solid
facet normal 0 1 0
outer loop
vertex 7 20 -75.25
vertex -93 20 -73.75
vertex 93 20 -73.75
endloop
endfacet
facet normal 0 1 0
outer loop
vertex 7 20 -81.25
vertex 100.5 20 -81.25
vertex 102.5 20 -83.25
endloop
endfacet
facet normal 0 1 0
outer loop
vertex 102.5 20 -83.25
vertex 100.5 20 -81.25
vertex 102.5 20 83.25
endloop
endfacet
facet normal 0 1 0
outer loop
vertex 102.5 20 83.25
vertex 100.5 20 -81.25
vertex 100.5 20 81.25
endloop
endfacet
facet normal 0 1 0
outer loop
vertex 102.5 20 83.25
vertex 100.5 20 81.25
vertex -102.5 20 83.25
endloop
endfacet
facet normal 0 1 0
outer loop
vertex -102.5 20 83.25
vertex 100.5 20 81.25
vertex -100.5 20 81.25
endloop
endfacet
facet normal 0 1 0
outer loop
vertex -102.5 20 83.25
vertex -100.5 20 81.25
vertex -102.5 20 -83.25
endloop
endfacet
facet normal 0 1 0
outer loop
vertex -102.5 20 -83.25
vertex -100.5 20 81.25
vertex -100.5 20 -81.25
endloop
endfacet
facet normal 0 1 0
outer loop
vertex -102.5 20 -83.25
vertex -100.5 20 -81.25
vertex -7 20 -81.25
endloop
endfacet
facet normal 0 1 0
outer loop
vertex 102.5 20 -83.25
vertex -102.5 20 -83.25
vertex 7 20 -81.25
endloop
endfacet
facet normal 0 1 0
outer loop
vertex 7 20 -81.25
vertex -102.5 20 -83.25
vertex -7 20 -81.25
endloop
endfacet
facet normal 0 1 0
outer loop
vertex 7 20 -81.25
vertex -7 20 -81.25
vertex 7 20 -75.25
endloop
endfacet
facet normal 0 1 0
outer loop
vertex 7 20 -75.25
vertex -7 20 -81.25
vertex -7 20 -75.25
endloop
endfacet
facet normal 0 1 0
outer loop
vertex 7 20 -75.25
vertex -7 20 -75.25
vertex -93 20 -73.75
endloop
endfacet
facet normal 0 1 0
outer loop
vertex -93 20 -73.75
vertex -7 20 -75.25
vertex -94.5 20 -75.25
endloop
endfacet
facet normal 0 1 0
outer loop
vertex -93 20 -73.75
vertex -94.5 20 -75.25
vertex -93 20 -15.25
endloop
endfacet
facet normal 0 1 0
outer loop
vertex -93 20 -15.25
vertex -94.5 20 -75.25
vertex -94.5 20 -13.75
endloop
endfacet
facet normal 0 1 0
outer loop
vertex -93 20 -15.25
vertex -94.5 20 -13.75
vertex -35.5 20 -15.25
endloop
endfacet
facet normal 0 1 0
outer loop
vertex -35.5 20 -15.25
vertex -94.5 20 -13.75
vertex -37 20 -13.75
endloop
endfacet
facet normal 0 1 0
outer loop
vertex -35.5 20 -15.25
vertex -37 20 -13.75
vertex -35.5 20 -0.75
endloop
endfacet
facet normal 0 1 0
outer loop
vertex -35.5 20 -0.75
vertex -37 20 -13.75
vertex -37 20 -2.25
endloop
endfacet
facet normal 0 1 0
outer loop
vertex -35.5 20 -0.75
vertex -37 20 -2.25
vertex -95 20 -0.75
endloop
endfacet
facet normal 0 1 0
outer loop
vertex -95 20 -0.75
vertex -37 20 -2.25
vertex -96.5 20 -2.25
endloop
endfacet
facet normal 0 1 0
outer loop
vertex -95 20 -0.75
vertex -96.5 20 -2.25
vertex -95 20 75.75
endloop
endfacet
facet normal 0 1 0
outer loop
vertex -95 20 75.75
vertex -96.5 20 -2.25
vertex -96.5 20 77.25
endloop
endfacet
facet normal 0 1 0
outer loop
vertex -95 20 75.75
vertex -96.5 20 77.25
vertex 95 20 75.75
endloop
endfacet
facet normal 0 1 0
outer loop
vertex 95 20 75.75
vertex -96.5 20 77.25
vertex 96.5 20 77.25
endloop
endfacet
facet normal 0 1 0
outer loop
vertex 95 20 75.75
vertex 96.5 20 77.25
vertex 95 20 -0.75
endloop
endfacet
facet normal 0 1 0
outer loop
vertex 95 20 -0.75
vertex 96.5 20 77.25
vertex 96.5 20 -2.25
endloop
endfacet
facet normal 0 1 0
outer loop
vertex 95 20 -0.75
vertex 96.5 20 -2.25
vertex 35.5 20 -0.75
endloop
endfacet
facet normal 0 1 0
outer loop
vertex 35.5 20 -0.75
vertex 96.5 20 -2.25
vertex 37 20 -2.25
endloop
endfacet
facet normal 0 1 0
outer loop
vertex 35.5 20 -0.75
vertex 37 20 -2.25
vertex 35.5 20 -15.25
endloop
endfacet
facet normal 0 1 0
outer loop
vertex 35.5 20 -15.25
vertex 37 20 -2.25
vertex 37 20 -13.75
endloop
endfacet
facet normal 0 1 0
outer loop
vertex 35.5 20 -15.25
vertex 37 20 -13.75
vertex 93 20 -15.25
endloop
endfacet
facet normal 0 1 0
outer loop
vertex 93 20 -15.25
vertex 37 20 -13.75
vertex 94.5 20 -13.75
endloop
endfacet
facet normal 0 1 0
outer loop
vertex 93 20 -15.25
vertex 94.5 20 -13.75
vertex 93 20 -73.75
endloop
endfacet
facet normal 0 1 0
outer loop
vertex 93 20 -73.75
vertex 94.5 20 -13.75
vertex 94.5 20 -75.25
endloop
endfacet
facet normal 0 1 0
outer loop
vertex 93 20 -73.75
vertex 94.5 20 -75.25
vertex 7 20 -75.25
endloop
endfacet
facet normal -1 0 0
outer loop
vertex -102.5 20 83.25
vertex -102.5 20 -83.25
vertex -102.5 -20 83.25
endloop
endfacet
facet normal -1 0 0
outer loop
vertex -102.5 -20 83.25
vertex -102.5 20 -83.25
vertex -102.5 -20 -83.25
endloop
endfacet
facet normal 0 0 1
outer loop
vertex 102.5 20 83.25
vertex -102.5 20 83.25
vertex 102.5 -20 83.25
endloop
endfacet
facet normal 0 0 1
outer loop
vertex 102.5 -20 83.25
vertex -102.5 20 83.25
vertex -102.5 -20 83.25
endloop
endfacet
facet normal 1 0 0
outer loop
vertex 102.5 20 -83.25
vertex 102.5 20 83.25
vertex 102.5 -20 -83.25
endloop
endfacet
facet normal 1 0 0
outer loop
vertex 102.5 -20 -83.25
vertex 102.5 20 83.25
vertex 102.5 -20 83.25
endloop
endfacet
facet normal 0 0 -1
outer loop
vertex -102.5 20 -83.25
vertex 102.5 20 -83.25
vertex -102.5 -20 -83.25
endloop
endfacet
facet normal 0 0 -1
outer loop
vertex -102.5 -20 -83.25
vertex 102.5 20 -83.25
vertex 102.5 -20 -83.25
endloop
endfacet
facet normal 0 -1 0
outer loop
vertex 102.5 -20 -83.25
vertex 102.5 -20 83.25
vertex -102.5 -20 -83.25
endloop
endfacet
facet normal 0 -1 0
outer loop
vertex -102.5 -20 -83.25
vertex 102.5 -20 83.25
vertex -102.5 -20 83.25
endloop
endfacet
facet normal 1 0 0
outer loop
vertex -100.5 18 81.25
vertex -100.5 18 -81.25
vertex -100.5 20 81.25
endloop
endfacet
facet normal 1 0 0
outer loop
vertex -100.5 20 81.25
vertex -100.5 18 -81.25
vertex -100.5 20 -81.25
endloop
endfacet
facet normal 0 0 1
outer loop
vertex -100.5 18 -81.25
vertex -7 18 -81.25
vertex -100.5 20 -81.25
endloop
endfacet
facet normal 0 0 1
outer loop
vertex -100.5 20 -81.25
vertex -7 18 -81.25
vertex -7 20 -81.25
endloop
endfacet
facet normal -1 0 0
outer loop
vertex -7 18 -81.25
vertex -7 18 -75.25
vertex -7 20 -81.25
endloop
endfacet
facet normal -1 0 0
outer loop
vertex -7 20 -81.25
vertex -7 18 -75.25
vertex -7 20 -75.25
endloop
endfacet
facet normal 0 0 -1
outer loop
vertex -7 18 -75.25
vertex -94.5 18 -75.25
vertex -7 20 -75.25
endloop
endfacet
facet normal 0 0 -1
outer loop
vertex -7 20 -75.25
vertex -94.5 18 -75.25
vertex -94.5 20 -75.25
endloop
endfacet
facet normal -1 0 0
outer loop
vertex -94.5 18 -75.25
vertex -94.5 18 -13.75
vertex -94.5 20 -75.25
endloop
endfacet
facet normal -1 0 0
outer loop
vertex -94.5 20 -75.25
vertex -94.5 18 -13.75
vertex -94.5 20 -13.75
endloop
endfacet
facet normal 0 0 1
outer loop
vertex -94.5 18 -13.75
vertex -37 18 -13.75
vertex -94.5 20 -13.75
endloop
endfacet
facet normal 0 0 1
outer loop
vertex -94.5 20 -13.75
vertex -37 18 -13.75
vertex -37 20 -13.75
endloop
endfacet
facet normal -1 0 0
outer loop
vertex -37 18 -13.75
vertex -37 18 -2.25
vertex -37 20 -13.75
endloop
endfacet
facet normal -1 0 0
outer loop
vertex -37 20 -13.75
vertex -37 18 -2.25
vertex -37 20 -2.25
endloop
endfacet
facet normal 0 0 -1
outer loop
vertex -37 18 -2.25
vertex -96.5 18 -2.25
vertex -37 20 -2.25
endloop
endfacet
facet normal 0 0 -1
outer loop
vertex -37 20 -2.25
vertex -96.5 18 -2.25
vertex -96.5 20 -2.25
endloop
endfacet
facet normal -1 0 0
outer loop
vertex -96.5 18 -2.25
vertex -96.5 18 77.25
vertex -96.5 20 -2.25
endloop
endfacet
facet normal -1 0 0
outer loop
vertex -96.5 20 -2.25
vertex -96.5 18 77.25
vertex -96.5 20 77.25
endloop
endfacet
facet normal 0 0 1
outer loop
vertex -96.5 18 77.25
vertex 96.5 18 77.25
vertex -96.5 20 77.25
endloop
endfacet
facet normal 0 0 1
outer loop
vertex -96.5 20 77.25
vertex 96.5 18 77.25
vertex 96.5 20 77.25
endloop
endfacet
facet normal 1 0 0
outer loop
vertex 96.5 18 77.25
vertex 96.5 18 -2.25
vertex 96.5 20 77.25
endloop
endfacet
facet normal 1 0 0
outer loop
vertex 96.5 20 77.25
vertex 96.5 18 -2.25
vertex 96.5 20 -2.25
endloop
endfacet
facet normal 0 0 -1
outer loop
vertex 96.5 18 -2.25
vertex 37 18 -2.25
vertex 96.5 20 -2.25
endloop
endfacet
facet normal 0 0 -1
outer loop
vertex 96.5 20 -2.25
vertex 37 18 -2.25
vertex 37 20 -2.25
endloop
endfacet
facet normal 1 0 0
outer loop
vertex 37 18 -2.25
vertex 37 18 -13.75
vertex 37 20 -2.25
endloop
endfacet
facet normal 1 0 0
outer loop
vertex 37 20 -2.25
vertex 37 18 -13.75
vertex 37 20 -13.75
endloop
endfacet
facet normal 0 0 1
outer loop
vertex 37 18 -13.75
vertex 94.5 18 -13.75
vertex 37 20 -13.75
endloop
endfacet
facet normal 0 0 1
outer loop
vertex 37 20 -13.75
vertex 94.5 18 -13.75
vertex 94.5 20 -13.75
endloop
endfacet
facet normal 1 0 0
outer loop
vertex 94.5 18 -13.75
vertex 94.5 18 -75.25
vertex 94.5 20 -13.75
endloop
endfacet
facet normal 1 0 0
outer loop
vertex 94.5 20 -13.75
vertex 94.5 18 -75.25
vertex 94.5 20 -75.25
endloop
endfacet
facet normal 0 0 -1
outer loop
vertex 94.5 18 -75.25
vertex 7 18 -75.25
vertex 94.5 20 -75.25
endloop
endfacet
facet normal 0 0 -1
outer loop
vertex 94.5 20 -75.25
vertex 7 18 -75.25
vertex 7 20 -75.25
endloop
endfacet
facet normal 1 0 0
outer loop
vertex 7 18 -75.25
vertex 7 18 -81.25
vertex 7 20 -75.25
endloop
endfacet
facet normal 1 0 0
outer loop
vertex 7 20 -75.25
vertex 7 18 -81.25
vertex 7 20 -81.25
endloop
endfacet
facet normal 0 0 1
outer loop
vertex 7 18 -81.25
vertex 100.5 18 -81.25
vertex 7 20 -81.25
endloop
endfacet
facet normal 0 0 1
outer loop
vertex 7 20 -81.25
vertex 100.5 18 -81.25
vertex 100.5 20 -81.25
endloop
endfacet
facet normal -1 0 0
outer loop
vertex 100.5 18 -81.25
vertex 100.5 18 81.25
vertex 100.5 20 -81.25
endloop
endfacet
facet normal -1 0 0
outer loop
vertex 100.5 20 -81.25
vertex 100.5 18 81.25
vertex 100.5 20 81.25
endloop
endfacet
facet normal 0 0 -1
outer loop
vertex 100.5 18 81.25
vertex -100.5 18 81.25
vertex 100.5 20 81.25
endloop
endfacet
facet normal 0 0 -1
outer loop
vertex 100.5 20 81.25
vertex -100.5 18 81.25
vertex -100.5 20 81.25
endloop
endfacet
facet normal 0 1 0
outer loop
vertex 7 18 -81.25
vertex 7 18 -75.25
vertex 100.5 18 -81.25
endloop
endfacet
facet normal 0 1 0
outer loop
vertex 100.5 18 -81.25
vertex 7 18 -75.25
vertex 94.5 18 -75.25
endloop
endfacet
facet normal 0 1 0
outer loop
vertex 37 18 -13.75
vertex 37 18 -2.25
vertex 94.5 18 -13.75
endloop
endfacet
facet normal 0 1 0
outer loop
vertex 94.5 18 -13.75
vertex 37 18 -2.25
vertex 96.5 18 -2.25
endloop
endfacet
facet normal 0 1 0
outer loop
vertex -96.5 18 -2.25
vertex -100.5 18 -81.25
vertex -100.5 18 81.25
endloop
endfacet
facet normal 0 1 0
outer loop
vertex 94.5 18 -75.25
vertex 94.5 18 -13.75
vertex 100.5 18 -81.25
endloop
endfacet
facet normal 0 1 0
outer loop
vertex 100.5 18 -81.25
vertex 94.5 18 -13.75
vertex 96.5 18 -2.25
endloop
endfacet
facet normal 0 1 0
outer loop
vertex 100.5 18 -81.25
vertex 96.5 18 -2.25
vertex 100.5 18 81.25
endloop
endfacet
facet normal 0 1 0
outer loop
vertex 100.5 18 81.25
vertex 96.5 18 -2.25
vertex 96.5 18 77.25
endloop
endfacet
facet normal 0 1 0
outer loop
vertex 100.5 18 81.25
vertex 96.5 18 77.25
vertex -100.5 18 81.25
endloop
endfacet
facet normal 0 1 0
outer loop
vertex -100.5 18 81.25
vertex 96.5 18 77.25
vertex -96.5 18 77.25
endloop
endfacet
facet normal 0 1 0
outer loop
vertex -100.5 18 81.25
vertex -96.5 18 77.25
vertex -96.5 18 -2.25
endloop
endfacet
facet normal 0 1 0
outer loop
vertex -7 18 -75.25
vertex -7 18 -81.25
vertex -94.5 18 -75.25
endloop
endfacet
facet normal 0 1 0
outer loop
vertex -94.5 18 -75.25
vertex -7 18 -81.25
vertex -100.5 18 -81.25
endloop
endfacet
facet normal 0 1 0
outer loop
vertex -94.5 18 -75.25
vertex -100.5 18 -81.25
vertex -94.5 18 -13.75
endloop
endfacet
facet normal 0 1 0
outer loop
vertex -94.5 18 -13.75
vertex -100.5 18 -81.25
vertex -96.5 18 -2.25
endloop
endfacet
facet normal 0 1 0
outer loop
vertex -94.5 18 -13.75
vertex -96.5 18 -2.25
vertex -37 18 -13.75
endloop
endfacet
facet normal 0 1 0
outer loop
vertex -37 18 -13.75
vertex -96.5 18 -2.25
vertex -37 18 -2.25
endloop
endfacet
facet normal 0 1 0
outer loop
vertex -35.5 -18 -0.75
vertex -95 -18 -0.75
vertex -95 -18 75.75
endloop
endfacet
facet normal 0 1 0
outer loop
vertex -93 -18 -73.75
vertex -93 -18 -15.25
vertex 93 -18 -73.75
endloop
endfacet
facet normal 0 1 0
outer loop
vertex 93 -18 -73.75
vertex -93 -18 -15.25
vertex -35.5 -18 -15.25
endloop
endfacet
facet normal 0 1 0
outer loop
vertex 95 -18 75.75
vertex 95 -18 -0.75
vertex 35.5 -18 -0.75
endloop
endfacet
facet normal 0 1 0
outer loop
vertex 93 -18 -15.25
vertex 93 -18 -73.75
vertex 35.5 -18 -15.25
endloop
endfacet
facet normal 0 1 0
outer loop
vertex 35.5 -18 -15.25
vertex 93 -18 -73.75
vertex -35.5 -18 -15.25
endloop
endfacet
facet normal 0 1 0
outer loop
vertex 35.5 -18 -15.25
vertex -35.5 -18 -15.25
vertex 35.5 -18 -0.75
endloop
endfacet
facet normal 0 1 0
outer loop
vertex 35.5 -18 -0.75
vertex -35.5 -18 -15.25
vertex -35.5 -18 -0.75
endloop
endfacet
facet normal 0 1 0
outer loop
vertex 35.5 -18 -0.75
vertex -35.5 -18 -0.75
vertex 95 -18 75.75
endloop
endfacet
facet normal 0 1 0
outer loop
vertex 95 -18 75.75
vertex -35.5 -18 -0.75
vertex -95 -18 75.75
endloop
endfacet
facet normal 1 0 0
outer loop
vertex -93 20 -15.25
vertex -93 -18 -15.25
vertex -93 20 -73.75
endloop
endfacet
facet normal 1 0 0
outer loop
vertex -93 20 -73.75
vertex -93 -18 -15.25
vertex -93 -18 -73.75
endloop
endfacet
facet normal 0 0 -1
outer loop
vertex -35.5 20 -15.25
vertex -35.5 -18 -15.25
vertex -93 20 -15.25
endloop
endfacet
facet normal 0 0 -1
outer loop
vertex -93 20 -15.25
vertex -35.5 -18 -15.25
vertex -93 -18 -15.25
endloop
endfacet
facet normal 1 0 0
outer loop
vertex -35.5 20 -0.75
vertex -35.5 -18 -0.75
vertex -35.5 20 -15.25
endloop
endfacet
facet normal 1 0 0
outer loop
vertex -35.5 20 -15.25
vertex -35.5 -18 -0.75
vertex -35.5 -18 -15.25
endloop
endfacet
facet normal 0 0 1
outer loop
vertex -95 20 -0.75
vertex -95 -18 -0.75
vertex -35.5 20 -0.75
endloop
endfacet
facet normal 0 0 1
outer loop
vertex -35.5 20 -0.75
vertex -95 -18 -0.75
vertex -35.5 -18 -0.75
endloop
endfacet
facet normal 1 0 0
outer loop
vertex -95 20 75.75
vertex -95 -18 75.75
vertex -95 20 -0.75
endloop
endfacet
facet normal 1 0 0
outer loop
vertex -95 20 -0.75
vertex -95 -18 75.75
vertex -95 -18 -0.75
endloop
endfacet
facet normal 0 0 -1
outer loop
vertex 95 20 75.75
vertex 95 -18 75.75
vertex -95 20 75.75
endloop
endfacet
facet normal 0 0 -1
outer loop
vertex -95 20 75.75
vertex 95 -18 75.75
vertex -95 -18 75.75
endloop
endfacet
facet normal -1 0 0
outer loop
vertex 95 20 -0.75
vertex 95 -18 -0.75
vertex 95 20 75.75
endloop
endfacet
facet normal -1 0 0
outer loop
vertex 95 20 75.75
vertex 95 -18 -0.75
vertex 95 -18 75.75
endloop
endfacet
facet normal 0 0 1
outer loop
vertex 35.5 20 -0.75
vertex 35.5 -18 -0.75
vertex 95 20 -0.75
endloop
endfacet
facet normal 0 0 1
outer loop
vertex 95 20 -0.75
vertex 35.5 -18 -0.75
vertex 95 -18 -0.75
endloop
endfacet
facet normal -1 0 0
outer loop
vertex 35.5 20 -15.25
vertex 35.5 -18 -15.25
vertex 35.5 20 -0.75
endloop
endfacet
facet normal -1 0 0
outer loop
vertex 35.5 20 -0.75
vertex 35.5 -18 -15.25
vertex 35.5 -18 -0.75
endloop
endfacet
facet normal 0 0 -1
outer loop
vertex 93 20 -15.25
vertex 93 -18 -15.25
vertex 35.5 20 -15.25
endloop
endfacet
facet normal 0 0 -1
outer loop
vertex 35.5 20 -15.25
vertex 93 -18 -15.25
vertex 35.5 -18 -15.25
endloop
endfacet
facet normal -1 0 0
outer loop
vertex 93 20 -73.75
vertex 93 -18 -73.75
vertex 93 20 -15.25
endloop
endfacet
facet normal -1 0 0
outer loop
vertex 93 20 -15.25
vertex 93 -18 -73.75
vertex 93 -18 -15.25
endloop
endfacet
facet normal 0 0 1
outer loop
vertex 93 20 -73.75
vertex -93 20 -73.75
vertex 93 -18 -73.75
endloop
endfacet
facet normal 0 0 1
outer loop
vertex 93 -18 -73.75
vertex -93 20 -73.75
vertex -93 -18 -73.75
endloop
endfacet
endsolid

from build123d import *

# Parameters (mm, degrees)
SKETCH1_W           = 205
SKETCH1_H           = 166.5
BOSS_EXTRUDE1_DEPTH = 20
CUT_EXTRUDE1_DEPTH  = 2
CUT_EXTRUDE3_DEPTH  = 38


with BuildPart() as part:
    # Sketch1 → Boss-Extrude1 (new, symmetric)
    with BuildSketch(Plane(origin=(0, 0, 0), x_dir=(1, 0, 0), z_dir=(0, 1, 0))):
        Rectangle(SKETCH1_W, SKETCH1_H)
    extrude(amount=BOSS_EXTRUDE1_DEPTH, both=True)

    # Sketch3 → Cut-Extrude1 (cut)
    # profile 1 of 4: a face of its own
    with BuildSketch(Plane(origin=(0, 20, 0), x_dir=(1, 0, 0), z_dir=(0, 1, 0))):
        Polygon((-100.5, -81.25), (-100.5, 5.75), (-100.5, 81.25), (-7, 81.25), (-7, 75.25), (-94.5, 75.25), (-94.5, 13.75), (-37, 13.75), (-37, 5.75), (-37, 2.25), (-96.5, 2.25), (-96.5, -77.25), (96.5, -77.25), (96.5, 2.25), (37, 2.25), (37, 5.75), (37, 13.75), (94.5, 13.75), (94.5, 75.25), (7, 75.25), (7, 81.25), (100.5, 81.25), (100.5, 5.75), (100.5, -81.25), align=None)
        Polygon((7.5, 80.75), (100, 80.75), (100, 5.75), (100, -80.75), (-100, -80.75), (-100, 5.75), (-100, 80.75), (-7.5, 80.75), (-7.5, 75.75), (-95, 75.75), (-95, 13.25), (-37.5, 13.25), (-37.5, 5.75), (-37.5, 2.75), (-97, 2.75), (-97, -77.75), (97, -77.75), (97, 2.75), (37.5, 2.75), (37.5, 5.75), (37.5, 13.25), (95, 13.25), (95, 75.75), (7.5, 75.75), align=None, mode=Mode.SUBTRACT)
    # profile 2 of 4: a face of its own
    with BuildSketch(Plane(origin=(0, 20, 0), x_dir=(1, 0, 0), z_dir=(0, 1, 0))):
        Polygon((-100, -80.75), (-100, 5.75), (-37.5, 5.75), (-37.5, 2.75), (-97, 2.75), (-97, -77.75), (97, -77.75), (97, 2.75), (37.5, 2.75), (37.5, 5.75), (100, 5.75), (100, -80.75), align=None)
    # profile 3 of 4: a face of its own
    with BuildSketch(Plane(origin=(0, 20, 0), x_dir=(1, 0, 0), z_dir=(0, 1, 0))):
        Polygon((-95, 13.25), (-37.5, 13.25), (-37.5, 5.75), (-100, 5.75), (-100, 80.75), (-7.5, 80.75), (-7.5, 75.75), (-95, 75.75), align=None)
    # profile 4 of 4: a face of its own
    with BuildSketch(Plane(origin=(0, 20, 0), x_dir=(1, 0, 0), z_dir=(0, 1, 0))):
        Polygon((100, 80.75), (100, 5.75), (37.5, 5.75), (37.5, 13.25), (95, 13.25), (95, 75.75), (7.5, 75.75), (7.5, 80.75), align=None)
    extrude(amount=-CUT_EXTRUDE1_DEPTH, mode=Mode.SUBTRACT)

    # Sketch5 → Cut-Extrude3 (cut)
    with BuildSketch(Plane(origin=(0, 20, 0), x_dir=(1, 0, 0), z_dir=(0, 1, 0))):
        Polygon((-7, 73.75), (7, 73.75), (93, 73.75), (93, 15.25), (35.5, 15.25), (35.5, 0.75), (95, 0.75), (95, -75.75), (-95, -75.75), (-95, 0.75), (-35.5, 0.75), (-35.5, 15.25), (-93, 15.25), (-93, 73.75), align=None)
    extrude(amount=-CUT_EXTRUDE3_DEPTH, mode=Mode.SUBTRACT)


solid = part.part
